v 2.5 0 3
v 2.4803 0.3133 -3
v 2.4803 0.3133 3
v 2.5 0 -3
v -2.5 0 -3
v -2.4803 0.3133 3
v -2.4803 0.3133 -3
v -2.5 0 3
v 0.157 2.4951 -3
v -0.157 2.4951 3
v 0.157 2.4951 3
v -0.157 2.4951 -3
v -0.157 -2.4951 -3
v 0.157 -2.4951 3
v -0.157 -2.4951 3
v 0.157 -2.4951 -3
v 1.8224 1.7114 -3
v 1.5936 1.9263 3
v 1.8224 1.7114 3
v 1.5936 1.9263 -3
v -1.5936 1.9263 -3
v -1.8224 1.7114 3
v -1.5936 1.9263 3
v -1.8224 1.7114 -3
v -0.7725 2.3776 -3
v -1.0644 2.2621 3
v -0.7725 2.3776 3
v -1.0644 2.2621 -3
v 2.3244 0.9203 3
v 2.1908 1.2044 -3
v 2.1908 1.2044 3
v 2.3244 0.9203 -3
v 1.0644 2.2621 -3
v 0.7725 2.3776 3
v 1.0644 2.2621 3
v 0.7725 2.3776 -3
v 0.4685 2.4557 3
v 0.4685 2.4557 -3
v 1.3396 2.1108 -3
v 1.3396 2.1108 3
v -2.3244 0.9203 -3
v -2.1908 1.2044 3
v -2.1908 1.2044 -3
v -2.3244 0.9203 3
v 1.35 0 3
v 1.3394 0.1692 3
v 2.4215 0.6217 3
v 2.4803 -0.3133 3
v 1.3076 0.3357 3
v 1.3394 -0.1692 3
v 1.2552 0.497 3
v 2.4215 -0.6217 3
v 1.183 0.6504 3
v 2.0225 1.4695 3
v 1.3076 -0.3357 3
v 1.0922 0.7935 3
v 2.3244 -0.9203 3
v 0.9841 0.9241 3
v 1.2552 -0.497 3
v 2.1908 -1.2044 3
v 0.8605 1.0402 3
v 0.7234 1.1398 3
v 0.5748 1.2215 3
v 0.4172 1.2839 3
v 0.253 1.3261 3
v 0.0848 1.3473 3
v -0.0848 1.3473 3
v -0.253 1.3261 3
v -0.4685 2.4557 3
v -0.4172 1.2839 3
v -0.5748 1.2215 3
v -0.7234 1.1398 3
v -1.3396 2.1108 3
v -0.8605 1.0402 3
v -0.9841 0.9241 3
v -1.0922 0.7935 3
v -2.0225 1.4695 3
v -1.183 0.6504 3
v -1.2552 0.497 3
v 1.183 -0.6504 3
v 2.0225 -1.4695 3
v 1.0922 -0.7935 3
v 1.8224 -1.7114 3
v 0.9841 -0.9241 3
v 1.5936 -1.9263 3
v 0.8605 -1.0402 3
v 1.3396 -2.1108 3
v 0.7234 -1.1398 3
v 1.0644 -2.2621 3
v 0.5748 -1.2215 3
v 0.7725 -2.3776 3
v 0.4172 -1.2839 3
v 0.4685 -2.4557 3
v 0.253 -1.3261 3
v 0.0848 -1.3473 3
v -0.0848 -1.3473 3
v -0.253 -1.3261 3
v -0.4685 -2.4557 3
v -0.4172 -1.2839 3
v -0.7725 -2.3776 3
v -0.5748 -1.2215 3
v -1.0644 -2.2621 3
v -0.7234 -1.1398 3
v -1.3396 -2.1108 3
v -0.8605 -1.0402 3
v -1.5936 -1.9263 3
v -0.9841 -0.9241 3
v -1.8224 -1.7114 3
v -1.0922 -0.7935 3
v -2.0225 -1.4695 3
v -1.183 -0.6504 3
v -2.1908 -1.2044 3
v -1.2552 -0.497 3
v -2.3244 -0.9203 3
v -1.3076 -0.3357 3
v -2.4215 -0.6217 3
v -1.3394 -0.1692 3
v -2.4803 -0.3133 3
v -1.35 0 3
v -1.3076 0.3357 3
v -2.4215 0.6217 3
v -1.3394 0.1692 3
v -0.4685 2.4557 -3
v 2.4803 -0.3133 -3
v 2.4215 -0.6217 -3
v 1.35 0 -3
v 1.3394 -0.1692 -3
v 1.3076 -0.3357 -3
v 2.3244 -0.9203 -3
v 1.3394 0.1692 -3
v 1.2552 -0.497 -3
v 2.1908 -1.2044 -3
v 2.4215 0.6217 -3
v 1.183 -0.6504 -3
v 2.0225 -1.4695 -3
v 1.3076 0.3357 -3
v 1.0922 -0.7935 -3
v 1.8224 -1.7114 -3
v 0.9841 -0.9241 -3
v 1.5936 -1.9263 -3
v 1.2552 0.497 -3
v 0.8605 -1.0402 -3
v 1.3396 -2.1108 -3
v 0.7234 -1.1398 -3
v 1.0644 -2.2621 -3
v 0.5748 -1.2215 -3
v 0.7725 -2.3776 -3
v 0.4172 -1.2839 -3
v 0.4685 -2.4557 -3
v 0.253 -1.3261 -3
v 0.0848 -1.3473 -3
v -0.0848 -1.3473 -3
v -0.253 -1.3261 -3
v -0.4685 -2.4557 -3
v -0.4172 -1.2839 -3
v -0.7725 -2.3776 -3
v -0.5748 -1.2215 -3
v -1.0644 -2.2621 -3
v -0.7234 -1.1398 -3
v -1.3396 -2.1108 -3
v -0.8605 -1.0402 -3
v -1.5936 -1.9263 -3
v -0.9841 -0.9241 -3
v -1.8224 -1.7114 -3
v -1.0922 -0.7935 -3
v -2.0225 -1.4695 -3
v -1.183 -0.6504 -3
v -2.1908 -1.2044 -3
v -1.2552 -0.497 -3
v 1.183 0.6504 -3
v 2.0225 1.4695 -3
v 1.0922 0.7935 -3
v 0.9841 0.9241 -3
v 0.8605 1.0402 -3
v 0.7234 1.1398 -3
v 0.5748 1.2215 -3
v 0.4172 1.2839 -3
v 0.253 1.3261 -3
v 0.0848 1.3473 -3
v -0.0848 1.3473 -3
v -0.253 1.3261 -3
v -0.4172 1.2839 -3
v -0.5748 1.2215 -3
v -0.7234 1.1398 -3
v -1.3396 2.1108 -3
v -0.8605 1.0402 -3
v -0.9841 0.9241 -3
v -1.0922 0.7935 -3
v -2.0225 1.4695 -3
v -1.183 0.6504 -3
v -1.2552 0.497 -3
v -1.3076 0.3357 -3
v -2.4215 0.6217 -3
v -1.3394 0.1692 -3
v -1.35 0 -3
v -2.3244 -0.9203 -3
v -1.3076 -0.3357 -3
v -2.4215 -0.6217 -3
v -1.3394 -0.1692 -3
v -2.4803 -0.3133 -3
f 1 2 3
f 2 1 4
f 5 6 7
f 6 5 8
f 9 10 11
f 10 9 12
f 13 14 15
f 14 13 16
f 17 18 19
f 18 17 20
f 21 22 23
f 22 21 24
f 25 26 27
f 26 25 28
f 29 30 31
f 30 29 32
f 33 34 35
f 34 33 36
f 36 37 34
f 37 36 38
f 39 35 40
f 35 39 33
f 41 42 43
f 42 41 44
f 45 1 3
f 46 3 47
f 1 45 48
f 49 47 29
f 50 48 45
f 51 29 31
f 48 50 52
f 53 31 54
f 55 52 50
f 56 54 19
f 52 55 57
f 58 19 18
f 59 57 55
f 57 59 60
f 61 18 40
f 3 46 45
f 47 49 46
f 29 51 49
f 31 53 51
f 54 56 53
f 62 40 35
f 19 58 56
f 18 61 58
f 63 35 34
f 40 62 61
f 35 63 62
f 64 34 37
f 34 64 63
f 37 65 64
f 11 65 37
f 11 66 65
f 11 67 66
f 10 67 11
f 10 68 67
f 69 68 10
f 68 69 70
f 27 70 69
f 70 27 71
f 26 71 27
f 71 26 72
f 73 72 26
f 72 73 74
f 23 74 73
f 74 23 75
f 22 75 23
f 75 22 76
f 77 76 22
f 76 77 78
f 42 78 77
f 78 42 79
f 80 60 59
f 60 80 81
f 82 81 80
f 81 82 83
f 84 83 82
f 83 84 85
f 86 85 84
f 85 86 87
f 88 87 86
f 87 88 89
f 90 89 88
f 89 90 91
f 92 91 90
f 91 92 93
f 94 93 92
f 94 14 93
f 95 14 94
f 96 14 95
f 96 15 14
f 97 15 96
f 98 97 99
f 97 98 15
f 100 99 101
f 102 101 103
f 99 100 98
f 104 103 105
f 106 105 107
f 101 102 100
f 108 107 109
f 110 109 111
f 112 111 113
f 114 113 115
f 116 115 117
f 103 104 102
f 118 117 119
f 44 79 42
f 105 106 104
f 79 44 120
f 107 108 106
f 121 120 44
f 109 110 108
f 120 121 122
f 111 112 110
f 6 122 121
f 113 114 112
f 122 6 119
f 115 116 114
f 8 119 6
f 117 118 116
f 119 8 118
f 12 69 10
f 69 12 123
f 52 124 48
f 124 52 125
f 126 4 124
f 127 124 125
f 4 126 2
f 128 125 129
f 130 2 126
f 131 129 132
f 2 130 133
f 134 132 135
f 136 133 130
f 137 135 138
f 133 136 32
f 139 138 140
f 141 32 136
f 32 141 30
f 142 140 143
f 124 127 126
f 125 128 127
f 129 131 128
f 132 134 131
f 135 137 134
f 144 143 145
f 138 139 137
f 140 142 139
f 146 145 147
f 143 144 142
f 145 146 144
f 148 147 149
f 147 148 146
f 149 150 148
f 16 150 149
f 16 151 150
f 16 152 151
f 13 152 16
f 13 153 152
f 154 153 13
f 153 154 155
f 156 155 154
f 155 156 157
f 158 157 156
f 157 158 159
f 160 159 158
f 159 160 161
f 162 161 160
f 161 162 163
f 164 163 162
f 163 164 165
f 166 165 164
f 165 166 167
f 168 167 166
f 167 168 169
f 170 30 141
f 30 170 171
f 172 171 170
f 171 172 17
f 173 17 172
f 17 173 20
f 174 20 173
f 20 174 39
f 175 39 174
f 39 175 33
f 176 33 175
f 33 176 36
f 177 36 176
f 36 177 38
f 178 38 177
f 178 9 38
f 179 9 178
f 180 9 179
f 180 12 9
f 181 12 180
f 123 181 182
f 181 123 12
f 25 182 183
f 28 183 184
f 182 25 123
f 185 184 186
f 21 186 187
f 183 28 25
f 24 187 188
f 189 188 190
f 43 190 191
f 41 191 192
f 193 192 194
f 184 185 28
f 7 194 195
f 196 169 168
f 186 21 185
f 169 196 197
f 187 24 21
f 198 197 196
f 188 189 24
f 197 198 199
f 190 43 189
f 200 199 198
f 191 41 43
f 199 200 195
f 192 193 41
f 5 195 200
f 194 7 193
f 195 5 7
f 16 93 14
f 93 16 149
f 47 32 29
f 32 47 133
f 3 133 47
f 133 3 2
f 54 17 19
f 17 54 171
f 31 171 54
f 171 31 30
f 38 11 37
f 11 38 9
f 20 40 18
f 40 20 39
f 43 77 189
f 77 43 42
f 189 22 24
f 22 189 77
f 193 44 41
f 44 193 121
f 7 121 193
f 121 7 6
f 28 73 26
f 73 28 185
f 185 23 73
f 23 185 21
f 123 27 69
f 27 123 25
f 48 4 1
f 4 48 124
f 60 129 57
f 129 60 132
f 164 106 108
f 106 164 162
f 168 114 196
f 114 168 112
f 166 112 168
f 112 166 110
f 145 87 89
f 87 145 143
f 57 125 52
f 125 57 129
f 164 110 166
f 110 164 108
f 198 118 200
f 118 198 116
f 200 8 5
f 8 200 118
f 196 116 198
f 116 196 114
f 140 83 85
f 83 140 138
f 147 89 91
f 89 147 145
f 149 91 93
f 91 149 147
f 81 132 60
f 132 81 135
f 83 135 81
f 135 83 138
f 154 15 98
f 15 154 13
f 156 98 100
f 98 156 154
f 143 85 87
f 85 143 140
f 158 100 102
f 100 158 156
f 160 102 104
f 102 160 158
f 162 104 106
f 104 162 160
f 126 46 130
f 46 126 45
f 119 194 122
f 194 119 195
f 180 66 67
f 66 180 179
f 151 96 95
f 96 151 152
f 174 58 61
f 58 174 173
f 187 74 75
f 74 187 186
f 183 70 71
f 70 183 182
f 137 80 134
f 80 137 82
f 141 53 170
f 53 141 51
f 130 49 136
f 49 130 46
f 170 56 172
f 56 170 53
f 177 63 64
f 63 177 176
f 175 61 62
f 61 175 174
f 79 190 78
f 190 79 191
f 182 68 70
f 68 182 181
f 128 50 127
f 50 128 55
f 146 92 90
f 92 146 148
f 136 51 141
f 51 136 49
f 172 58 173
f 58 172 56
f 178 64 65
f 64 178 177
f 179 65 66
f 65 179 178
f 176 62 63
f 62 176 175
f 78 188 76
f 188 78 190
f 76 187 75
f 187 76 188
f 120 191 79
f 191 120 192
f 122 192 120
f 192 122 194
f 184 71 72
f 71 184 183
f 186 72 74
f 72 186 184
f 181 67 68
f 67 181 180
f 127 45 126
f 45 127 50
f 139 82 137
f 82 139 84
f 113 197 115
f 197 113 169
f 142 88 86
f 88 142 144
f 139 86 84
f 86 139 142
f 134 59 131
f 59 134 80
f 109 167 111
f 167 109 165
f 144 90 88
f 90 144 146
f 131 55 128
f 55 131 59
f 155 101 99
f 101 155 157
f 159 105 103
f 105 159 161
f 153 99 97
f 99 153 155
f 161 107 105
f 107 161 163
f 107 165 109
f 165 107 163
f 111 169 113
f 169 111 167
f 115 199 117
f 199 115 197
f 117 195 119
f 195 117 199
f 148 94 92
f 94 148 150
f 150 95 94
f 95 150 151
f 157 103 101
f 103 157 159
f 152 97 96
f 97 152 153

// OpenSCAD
$fn = 50;


difference() {
	union() {
		translate(v = [0, 0, -3.0000000000]) {
			cylinder(h = 6, r = 2.5000000000);
		}
	}
	union() {
		translate(v = [0, 0, -100.0000000000]) {
			cylinder(h = 200, r = 1.3500000000);
		}
	}
}
